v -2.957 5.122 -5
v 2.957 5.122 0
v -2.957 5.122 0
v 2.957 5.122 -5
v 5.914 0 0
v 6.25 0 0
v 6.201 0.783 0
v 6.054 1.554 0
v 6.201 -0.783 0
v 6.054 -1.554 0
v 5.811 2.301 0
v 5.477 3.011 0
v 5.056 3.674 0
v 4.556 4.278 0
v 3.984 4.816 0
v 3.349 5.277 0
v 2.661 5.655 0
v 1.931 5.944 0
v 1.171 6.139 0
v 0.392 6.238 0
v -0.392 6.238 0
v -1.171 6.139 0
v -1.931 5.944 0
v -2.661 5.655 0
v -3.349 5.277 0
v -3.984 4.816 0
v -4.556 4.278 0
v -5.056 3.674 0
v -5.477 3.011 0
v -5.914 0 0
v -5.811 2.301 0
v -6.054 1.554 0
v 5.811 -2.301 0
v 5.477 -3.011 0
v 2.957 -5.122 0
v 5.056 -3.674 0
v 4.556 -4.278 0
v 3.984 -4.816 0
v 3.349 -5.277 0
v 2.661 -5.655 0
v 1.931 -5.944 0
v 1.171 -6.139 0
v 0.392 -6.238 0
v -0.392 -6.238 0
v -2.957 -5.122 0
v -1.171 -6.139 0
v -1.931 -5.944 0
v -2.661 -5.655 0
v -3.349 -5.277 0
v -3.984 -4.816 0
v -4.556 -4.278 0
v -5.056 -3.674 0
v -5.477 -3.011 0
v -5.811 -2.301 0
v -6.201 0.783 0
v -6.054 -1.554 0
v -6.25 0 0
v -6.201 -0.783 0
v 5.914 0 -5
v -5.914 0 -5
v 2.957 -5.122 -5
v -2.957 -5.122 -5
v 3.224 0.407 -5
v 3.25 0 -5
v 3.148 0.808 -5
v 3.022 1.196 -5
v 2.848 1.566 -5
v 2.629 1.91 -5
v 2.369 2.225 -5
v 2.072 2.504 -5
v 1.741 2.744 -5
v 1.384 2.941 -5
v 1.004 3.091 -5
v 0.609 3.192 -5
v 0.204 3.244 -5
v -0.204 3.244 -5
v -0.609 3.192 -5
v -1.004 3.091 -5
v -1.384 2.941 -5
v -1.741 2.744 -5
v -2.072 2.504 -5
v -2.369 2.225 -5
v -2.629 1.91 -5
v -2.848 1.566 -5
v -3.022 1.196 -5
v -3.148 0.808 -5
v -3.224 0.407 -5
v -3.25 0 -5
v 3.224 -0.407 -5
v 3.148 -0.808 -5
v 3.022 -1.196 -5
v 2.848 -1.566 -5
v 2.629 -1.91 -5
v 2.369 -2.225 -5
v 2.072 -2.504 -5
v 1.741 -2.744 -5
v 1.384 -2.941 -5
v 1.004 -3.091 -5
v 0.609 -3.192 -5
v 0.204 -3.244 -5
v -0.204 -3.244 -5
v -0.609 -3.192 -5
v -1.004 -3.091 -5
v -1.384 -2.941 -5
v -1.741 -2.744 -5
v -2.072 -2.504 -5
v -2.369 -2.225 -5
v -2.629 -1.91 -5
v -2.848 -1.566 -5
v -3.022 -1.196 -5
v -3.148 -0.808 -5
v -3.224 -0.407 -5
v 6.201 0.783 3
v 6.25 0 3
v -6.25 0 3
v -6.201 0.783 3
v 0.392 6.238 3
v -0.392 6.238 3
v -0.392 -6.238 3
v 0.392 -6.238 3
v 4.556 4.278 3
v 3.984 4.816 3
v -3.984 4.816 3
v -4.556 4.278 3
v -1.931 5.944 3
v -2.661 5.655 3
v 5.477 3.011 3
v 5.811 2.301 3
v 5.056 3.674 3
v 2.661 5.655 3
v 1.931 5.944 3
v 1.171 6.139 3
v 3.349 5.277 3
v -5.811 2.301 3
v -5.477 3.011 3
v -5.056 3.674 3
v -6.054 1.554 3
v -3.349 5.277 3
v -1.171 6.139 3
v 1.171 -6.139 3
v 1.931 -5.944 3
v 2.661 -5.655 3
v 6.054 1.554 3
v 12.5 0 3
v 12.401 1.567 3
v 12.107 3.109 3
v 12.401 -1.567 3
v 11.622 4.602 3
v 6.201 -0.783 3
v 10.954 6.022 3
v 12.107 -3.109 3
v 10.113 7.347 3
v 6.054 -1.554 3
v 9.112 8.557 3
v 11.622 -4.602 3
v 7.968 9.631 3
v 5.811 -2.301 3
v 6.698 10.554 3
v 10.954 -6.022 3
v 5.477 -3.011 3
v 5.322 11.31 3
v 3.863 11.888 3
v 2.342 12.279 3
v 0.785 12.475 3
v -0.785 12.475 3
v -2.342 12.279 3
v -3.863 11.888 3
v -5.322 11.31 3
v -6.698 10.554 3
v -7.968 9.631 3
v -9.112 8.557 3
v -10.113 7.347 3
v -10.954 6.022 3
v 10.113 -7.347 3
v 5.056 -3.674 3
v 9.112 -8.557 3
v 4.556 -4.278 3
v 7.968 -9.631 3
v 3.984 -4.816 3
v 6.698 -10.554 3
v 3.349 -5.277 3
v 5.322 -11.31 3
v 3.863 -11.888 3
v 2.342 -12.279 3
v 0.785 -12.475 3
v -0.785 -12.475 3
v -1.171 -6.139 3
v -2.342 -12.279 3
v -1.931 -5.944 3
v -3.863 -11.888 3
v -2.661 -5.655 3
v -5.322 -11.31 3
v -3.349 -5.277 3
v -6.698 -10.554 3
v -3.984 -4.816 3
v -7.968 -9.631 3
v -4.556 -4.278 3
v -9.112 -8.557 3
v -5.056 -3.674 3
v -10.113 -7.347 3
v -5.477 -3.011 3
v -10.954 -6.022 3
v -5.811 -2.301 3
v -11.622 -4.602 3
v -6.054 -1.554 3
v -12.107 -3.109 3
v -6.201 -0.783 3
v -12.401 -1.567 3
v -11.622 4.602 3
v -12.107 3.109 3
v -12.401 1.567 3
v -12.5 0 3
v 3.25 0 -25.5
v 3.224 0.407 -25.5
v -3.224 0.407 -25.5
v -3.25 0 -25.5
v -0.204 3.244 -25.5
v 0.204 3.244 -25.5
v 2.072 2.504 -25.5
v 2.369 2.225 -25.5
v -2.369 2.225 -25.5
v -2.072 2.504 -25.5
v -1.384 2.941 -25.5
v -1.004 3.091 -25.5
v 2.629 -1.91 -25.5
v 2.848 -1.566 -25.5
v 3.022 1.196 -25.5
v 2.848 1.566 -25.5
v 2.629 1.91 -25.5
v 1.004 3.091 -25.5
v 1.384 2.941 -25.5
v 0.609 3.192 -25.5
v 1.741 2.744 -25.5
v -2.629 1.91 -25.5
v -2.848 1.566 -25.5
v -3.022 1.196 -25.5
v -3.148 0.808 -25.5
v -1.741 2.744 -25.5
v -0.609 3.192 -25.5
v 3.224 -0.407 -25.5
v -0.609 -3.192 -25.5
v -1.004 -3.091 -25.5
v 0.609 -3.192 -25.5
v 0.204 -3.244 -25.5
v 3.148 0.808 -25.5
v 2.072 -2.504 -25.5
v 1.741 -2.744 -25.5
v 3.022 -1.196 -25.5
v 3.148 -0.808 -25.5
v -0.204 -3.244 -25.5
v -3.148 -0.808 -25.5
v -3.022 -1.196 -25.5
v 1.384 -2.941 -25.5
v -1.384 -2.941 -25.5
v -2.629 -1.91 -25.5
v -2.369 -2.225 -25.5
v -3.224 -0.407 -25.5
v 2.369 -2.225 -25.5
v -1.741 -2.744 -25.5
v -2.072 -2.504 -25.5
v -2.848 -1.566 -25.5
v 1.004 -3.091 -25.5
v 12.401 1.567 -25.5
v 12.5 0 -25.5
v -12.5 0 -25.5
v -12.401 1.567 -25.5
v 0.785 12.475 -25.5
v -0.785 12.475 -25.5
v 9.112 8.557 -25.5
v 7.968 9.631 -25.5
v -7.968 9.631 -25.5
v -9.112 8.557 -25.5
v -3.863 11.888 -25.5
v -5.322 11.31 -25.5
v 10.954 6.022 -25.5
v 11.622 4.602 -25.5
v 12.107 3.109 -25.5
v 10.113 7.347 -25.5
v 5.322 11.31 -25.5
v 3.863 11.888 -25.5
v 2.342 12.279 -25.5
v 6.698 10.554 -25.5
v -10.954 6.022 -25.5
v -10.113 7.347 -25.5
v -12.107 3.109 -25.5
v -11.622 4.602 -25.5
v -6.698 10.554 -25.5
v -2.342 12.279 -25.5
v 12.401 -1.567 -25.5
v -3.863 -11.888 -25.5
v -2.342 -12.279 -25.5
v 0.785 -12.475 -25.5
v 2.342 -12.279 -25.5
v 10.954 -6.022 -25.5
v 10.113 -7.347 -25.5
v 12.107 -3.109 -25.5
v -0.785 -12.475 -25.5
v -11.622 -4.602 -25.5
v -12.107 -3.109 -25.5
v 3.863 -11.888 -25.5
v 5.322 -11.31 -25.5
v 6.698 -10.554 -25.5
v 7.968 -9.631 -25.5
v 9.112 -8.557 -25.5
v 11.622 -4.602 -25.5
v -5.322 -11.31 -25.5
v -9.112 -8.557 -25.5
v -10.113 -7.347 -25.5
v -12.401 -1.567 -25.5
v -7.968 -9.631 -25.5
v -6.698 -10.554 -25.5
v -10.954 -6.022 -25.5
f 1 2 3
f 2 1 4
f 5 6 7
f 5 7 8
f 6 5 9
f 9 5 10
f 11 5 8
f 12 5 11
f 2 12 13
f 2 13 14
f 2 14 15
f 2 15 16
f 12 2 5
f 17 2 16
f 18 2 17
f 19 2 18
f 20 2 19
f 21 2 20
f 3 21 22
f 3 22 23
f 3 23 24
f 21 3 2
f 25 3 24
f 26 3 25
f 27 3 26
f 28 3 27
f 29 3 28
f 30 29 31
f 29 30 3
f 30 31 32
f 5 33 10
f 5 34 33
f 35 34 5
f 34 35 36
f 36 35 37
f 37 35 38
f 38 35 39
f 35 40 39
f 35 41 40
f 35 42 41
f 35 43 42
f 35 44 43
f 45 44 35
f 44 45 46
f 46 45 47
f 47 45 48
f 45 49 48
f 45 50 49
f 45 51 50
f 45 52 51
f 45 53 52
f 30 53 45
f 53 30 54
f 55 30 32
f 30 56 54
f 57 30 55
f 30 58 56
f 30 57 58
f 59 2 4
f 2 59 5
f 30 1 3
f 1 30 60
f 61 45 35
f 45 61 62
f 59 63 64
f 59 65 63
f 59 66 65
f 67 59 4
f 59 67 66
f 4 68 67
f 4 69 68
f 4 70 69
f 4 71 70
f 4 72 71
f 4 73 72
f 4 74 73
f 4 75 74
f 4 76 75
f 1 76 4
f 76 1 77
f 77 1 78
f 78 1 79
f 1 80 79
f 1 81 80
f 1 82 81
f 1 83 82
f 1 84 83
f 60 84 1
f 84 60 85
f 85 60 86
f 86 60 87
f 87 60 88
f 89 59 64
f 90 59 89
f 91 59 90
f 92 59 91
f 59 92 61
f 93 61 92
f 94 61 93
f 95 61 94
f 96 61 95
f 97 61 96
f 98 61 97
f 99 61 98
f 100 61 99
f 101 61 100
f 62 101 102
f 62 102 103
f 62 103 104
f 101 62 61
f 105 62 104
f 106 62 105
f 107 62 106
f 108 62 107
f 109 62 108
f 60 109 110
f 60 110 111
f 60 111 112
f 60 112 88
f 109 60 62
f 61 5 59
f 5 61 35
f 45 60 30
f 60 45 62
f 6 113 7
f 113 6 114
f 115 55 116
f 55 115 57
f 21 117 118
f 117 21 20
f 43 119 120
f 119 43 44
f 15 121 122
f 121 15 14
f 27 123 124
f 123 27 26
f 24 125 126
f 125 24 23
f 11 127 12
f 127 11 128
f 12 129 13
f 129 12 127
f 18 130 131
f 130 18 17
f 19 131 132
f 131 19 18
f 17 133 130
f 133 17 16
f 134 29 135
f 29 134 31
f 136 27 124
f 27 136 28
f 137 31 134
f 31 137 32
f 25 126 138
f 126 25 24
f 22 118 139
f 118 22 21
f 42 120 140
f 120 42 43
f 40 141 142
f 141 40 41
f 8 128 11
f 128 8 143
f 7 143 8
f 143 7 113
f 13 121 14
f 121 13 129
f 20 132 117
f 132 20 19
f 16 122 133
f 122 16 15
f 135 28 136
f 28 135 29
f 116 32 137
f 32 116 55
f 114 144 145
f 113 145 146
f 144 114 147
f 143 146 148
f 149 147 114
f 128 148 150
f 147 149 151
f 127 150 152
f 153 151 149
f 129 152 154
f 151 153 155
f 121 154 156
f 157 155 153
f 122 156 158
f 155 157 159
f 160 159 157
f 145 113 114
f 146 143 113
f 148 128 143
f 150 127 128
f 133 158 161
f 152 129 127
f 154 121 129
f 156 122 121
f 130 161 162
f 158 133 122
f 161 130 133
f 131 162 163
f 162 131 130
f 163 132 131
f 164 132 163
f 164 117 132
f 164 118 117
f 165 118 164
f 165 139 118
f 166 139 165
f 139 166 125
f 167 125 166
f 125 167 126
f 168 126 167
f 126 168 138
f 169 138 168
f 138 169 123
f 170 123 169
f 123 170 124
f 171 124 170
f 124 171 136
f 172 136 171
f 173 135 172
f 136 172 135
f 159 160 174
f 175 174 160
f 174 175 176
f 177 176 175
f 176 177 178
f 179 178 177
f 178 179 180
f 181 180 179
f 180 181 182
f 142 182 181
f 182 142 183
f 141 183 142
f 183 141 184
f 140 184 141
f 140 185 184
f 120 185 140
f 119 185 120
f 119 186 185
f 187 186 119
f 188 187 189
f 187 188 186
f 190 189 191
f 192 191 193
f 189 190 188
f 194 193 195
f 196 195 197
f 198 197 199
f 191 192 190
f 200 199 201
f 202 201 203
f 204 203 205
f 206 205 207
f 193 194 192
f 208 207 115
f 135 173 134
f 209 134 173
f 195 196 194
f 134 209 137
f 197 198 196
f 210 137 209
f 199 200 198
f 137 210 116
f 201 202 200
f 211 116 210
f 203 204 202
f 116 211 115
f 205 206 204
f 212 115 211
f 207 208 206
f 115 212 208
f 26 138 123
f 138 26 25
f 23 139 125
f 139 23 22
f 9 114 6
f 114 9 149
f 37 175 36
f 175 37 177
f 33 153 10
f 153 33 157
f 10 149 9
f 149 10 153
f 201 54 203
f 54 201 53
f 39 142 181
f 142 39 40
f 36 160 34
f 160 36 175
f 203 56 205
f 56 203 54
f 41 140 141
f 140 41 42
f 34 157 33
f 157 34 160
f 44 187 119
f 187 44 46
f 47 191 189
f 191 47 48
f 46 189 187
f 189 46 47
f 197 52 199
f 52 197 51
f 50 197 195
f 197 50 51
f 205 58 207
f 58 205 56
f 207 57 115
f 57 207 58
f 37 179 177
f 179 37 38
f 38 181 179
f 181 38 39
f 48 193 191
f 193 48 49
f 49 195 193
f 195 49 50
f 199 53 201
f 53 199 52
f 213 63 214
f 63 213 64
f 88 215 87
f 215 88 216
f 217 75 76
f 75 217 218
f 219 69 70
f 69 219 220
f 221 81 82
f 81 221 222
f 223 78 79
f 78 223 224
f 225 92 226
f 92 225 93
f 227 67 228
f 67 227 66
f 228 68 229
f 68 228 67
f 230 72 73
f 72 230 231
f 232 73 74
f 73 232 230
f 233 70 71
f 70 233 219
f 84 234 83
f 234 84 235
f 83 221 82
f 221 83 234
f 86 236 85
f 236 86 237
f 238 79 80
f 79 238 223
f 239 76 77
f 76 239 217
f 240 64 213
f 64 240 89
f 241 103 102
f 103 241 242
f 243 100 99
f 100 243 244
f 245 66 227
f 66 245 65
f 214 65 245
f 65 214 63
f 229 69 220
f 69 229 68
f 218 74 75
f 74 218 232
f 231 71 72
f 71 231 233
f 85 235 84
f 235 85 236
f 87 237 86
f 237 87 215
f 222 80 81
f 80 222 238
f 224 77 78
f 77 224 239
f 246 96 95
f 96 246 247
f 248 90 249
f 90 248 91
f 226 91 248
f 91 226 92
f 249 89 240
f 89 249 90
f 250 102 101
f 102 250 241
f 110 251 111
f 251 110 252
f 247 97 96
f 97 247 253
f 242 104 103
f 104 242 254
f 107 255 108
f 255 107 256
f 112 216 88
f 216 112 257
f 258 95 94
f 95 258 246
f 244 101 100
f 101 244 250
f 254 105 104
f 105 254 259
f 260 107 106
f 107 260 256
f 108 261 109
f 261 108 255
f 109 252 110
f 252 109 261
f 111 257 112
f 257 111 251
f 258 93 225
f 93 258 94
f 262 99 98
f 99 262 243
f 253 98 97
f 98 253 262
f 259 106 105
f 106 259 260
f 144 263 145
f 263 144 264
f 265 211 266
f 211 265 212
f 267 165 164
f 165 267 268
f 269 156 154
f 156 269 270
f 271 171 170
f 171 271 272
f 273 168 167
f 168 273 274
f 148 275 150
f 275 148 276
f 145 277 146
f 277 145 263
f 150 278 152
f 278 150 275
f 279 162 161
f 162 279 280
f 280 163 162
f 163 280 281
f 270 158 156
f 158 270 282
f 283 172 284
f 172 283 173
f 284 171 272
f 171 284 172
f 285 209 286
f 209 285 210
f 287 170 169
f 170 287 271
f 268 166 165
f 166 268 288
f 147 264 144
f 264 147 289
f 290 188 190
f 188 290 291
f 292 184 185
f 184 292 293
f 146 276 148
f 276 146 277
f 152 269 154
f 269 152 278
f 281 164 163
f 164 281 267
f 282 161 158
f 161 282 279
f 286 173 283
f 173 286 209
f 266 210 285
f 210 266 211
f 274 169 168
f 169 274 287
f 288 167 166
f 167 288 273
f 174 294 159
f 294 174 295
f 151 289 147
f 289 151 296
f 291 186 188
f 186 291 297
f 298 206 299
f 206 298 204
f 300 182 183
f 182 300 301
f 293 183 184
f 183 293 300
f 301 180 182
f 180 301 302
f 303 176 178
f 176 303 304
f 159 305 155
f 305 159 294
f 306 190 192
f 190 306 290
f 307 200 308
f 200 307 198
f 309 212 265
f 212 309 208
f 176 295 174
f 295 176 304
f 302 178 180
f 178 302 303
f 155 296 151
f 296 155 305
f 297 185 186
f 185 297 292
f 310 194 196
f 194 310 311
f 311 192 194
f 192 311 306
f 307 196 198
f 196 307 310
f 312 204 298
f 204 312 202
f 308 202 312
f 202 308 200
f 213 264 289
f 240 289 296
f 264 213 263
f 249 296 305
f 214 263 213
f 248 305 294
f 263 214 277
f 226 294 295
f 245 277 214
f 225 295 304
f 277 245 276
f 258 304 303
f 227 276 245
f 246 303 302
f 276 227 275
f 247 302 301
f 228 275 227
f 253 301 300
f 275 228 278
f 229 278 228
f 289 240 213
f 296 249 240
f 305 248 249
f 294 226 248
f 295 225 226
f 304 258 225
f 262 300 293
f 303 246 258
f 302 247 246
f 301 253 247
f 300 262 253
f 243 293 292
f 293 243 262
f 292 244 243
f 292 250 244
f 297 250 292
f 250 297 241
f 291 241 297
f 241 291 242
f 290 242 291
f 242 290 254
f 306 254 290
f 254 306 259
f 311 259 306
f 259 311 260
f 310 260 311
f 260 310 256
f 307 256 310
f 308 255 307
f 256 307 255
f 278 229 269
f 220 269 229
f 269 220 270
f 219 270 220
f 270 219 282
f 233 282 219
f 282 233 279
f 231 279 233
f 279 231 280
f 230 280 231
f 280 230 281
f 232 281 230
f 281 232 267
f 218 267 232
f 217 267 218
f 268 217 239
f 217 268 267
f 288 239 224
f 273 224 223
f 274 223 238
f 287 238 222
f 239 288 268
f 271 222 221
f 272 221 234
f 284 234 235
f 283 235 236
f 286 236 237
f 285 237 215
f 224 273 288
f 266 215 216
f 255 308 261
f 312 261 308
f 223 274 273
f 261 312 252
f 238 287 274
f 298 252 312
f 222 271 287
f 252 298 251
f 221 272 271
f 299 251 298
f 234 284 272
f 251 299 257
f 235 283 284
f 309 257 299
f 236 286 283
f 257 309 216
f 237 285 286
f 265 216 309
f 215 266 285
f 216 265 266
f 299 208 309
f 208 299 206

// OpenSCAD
$fn = 50;


difference() {
	union() {
		translate(v = [0, 0, -25.5000000000]) {
			cylinder(h = 28.5000000000, r = 12.5000000000);
		}
	}
	union() {
		translate(v = [0, 0, 0]) {
			rotate(a = [0, 0, 0]) {
				difference() {
					union() {
						translate(v = [0, 0, -5]) {
							linear_extrude(height = 5) {
								polygon(points = [[5.9142500000, 0.0000000000], [2.9571250000, 5.1218907443], [-2.9571250000, 5.1218907443], [-5.9142500000, 0.0000000000], [-2.9571250000, -5.1218907443], [2.9571250000, -5.1218907443]]);
							}
						}
					}
					union();
				}
			}
		}
		#cylinder(h = 3, r = 6.2500000000);
		#translate(v = [0, 0, -100.0000000000]) {
			cylinder(h = 200, r = 3.2500000000);
		}
	}
}
